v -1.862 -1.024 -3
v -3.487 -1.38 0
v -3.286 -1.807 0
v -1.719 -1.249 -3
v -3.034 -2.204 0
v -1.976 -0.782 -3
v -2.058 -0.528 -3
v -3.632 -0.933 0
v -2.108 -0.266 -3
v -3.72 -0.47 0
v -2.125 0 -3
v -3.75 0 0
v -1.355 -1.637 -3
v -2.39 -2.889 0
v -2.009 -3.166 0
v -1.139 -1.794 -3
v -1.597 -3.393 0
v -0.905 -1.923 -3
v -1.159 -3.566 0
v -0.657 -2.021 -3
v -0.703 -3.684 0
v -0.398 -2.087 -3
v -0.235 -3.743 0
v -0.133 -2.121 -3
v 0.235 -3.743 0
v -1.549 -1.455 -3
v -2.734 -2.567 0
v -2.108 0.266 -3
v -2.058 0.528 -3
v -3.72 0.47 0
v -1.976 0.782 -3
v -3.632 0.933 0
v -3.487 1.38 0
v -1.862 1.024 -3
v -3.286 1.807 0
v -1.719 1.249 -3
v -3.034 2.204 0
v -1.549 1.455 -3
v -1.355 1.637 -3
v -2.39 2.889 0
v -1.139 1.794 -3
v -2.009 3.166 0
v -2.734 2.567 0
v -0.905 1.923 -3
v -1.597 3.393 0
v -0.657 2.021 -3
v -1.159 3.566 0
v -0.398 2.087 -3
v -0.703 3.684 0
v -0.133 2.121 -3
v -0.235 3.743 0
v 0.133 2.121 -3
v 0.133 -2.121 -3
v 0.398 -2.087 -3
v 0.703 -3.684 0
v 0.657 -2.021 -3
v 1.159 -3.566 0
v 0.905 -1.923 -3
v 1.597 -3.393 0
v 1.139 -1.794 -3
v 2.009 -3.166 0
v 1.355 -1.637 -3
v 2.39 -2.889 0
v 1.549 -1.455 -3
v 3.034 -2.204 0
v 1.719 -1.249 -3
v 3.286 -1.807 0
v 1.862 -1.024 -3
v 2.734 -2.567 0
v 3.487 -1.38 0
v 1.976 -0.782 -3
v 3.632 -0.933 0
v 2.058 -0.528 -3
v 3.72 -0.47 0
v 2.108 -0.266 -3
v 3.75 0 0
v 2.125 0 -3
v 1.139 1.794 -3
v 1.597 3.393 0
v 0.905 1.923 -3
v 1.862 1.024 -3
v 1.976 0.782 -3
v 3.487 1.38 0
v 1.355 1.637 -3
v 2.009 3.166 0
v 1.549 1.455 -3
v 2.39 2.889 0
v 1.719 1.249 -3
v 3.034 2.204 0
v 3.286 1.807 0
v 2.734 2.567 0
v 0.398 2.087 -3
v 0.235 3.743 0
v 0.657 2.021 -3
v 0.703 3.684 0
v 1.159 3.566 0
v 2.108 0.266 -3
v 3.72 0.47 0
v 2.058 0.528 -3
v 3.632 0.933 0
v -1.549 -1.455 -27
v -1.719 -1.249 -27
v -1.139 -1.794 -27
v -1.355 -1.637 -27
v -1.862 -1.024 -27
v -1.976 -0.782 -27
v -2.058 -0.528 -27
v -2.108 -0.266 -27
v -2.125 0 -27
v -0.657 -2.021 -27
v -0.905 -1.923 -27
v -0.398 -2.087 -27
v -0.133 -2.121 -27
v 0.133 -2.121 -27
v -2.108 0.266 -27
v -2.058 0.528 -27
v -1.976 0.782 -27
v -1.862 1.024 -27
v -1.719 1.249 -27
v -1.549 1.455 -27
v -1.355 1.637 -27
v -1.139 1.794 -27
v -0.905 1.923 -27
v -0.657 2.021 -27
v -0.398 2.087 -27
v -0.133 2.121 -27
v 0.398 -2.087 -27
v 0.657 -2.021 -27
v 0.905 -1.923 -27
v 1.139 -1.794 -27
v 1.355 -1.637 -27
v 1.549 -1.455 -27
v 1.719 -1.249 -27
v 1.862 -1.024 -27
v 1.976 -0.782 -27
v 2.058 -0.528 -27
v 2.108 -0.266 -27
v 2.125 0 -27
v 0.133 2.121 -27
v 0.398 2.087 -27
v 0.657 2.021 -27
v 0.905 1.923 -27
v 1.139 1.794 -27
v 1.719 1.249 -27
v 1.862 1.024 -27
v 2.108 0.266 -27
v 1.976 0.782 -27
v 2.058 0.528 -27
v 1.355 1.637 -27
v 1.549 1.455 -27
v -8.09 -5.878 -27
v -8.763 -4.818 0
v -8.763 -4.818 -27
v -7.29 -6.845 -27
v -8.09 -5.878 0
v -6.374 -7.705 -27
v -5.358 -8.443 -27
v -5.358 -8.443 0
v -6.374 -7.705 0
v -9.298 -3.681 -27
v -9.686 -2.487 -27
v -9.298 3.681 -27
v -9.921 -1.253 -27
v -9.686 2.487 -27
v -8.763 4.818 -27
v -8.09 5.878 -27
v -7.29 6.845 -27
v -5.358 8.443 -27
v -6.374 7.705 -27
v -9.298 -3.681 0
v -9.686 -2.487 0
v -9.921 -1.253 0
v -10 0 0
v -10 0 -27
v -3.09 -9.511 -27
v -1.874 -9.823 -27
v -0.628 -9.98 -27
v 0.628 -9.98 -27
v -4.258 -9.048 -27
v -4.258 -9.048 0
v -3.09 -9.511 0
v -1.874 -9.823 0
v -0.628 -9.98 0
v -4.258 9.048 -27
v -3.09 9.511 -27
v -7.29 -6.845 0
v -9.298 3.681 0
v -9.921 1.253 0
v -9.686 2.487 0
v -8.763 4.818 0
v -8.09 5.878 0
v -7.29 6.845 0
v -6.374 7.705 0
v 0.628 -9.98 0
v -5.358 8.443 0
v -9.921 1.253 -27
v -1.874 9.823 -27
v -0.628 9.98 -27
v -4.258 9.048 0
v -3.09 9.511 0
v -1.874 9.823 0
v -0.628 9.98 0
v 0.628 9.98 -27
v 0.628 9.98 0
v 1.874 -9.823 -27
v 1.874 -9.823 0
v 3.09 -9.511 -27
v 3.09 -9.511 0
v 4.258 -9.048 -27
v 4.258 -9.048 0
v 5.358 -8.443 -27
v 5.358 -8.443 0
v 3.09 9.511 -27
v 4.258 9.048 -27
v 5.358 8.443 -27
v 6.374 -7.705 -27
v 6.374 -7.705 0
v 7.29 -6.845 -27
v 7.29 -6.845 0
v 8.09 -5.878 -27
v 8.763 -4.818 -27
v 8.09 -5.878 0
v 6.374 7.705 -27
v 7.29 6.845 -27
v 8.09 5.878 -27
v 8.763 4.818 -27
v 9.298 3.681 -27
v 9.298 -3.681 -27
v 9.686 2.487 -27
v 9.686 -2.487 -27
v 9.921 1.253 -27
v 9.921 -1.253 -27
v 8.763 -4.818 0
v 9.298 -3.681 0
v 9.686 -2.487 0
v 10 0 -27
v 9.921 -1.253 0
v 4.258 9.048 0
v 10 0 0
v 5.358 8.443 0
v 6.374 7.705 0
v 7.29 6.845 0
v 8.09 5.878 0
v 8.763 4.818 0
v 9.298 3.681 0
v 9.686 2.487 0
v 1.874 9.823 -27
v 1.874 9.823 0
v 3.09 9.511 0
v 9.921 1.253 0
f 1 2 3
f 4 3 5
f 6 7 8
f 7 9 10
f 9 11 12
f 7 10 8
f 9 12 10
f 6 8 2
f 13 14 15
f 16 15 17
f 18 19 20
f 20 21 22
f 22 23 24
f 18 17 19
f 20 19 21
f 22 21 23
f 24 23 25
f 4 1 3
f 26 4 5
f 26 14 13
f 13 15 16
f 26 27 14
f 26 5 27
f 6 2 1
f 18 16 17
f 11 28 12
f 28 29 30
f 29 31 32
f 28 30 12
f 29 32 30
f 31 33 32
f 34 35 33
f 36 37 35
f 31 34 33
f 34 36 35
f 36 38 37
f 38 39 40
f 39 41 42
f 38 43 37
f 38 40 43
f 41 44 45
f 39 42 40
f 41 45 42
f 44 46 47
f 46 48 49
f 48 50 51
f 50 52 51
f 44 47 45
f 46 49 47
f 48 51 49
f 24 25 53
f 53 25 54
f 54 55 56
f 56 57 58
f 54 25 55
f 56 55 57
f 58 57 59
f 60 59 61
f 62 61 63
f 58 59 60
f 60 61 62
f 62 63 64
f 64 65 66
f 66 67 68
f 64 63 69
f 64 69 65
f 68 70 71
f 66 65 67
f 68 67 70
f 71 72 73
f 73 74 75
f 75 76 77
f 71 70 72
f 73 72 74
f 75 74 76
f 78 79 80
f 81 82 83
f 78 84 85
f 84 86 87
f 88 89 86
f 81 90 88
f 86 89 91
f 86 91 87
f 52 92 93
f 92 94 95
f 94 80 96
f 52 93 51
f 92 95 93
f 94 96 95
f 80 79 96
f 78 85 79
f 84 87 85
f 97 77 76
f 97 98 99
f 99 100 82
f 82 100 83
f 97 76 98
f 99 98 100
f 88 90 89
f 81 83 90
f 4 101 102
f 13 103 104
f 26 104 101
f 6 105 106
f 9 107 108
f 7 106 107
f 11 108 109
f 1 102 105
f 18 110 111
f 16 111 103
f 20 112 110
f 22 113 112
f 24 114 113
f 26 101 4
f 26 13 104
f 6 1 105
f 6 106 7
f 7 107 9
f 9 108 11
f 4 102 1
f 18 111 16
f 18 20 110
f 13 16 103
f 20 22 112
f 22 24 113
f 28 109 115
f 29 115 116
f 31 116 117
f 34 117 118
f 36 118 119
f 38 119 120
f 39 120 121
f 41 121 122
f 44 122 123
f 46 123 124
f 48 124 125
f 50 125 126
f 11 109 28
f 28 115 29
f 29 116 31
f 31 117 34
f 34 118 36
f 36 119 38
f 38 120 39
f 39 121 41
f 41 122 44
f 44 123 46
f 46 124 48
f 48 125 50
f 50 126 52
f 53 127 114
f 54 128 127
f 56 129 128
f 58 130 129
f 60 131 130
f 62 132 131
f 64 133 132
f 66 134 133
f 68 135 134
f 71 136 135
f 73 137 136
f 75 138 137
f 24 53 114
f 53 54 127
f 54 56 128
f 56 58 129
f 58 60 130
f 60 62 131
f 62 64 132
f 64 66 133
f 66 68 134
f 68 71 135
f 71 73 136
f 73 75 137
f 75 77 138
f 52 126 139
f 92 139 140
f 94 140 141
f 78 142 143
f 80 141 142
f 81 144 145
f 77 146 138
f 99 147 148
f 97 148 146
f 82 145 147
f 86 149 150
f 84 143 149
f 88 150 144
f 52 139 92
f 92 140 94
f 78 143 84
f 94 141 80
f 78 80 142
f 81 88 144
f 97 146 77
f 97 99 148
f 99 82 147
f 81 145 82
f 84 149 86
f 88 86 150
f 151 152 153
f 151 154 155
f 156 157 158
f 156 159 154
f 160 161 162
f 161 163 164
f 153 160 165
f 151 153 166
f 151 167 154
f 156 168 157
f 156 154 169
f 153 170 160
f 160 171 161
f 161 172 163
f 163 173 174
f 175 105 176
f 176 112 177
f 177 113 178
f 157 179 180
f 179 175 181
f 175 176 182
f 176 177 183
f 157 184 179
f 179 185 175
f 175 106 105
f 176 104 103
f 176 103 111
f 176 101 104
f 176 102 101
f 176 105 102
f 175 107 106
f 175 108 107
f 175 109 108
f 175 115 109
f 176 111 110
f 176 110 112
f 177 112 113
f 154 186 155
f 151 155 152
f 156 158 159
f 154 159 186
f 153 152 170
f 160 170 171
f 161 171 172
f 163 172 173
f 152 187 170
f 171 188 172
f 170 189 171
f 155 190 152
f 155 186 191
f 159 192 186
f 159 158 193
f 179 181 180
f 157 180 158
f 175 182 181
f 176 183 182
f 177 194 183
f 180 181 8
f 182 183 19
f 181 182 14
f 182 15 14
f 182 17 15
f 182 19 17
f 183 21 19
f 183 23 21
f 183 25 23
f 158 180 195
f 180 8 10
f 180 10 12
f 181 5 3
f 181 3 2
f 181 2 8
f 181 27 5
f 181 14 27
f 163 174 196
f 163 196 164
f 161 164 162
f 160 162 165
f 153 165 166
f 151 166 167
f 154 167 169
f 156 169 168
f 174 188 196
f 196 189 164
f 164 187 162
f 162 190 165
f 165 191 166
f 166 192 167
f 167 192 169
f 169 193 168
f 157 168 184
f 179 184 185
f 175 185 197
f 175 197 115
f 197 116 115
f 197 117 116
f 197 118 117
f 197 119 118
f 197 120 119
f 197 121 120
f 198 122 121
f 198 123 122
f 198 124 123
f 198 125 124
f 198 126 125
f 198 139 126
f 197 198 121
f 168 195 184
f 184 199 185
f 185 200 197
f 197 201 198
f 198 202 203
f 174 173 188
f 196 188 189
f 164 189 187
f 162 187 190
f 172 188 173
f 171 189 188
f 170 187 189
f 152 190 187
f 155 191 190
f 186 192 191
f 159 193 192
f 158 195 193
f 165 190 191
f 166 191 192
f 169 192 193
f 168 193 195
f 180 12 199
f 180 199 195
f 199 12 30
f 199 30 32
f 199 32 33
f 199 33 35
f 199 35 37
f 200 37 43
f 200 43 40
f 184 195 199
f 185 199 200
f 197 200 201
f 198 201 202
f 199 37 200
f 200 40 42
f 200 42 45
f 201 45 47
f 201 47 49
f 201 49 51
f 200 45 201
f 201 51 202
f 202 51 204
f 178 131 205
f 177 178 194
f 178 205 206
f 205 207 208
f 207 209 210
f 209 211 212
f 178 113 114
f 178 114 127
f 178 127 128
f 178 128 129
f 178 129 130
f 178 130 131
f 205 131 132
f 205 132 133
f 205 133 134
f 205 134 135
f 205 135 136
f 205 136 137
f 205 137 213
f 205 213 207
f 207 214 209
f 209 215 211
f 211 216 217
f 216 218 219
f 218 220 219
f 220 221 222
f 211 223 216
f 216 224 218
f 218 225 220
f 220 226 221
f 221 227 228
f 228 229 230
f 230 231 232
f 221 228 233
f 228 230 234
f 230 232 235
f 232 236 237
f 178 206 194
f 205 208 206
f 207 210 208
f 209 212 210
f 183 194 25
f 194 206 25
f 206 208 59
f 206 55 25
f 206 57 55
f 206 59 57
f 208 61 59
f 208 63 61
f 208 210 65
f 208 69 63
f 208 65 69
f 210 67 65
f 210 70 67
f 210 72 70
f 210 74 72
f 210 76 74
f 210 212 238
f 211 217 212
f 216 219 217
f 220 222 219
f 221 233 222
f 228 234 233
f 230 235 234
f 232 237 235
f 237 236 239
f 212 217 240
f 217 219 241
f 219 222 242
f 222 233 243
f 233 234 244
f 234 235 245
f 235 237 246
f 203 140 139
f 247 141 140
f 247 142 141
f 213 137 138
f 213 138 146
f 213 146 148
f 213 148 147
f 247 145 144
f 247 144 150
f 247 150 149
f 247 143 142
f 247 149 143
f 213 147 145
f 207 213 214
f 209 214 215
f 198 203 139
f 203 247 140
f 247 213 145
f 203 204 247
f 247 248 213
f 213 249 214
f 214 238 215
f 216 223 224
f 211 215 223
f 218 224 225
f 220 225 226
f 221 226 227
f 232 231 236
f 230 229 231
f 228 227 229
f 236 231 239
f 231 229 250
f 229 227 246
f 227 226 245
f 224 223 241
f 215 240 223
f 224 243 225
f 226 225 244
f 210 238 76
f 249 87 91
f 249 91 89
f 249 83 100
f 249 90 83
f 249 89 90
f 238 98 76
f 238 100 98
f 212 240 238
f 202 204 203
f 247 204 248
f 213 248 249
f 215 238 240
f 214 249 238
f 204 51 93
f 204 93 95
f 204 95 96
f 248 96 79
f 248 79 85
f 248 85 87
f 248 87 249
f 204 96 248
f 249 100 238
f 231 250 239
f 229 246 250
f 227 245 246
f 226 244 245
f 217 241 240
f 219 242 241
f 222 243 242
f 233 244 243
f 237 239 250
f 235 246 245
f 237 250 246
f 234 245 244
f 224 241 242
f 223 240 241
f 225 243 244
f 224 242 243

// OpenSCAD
$fn = 50;

difference() {
	union() {
		translate(v = [0, 0, -27.0]) {
			cylinder(h = 27, r = 10.0);
		}
	}
	union() {
		translate(v = [0, 0, 0]) {
			rotate(a = [0, 0, 0]) {
				difference() {
					union() {
						translate(v = [0, 0, -30.0]) {
							cylinder(h = 30, r = 2.0);
						}
						translate(v = [0, 0, -3]) {
							cylinder(h = 3, r1 = 2.125, r2 = 3.75);
						}
						translate(v = [0, 0, -30.0]) {
							cylinder(h = 30, r = 2.125);
						}
						translate(v = [0, 0, -30.0]) {
							cylinder(h = 30, r = 2.0);
						}
					}
					union();
				}
			}
		}
	}
}
